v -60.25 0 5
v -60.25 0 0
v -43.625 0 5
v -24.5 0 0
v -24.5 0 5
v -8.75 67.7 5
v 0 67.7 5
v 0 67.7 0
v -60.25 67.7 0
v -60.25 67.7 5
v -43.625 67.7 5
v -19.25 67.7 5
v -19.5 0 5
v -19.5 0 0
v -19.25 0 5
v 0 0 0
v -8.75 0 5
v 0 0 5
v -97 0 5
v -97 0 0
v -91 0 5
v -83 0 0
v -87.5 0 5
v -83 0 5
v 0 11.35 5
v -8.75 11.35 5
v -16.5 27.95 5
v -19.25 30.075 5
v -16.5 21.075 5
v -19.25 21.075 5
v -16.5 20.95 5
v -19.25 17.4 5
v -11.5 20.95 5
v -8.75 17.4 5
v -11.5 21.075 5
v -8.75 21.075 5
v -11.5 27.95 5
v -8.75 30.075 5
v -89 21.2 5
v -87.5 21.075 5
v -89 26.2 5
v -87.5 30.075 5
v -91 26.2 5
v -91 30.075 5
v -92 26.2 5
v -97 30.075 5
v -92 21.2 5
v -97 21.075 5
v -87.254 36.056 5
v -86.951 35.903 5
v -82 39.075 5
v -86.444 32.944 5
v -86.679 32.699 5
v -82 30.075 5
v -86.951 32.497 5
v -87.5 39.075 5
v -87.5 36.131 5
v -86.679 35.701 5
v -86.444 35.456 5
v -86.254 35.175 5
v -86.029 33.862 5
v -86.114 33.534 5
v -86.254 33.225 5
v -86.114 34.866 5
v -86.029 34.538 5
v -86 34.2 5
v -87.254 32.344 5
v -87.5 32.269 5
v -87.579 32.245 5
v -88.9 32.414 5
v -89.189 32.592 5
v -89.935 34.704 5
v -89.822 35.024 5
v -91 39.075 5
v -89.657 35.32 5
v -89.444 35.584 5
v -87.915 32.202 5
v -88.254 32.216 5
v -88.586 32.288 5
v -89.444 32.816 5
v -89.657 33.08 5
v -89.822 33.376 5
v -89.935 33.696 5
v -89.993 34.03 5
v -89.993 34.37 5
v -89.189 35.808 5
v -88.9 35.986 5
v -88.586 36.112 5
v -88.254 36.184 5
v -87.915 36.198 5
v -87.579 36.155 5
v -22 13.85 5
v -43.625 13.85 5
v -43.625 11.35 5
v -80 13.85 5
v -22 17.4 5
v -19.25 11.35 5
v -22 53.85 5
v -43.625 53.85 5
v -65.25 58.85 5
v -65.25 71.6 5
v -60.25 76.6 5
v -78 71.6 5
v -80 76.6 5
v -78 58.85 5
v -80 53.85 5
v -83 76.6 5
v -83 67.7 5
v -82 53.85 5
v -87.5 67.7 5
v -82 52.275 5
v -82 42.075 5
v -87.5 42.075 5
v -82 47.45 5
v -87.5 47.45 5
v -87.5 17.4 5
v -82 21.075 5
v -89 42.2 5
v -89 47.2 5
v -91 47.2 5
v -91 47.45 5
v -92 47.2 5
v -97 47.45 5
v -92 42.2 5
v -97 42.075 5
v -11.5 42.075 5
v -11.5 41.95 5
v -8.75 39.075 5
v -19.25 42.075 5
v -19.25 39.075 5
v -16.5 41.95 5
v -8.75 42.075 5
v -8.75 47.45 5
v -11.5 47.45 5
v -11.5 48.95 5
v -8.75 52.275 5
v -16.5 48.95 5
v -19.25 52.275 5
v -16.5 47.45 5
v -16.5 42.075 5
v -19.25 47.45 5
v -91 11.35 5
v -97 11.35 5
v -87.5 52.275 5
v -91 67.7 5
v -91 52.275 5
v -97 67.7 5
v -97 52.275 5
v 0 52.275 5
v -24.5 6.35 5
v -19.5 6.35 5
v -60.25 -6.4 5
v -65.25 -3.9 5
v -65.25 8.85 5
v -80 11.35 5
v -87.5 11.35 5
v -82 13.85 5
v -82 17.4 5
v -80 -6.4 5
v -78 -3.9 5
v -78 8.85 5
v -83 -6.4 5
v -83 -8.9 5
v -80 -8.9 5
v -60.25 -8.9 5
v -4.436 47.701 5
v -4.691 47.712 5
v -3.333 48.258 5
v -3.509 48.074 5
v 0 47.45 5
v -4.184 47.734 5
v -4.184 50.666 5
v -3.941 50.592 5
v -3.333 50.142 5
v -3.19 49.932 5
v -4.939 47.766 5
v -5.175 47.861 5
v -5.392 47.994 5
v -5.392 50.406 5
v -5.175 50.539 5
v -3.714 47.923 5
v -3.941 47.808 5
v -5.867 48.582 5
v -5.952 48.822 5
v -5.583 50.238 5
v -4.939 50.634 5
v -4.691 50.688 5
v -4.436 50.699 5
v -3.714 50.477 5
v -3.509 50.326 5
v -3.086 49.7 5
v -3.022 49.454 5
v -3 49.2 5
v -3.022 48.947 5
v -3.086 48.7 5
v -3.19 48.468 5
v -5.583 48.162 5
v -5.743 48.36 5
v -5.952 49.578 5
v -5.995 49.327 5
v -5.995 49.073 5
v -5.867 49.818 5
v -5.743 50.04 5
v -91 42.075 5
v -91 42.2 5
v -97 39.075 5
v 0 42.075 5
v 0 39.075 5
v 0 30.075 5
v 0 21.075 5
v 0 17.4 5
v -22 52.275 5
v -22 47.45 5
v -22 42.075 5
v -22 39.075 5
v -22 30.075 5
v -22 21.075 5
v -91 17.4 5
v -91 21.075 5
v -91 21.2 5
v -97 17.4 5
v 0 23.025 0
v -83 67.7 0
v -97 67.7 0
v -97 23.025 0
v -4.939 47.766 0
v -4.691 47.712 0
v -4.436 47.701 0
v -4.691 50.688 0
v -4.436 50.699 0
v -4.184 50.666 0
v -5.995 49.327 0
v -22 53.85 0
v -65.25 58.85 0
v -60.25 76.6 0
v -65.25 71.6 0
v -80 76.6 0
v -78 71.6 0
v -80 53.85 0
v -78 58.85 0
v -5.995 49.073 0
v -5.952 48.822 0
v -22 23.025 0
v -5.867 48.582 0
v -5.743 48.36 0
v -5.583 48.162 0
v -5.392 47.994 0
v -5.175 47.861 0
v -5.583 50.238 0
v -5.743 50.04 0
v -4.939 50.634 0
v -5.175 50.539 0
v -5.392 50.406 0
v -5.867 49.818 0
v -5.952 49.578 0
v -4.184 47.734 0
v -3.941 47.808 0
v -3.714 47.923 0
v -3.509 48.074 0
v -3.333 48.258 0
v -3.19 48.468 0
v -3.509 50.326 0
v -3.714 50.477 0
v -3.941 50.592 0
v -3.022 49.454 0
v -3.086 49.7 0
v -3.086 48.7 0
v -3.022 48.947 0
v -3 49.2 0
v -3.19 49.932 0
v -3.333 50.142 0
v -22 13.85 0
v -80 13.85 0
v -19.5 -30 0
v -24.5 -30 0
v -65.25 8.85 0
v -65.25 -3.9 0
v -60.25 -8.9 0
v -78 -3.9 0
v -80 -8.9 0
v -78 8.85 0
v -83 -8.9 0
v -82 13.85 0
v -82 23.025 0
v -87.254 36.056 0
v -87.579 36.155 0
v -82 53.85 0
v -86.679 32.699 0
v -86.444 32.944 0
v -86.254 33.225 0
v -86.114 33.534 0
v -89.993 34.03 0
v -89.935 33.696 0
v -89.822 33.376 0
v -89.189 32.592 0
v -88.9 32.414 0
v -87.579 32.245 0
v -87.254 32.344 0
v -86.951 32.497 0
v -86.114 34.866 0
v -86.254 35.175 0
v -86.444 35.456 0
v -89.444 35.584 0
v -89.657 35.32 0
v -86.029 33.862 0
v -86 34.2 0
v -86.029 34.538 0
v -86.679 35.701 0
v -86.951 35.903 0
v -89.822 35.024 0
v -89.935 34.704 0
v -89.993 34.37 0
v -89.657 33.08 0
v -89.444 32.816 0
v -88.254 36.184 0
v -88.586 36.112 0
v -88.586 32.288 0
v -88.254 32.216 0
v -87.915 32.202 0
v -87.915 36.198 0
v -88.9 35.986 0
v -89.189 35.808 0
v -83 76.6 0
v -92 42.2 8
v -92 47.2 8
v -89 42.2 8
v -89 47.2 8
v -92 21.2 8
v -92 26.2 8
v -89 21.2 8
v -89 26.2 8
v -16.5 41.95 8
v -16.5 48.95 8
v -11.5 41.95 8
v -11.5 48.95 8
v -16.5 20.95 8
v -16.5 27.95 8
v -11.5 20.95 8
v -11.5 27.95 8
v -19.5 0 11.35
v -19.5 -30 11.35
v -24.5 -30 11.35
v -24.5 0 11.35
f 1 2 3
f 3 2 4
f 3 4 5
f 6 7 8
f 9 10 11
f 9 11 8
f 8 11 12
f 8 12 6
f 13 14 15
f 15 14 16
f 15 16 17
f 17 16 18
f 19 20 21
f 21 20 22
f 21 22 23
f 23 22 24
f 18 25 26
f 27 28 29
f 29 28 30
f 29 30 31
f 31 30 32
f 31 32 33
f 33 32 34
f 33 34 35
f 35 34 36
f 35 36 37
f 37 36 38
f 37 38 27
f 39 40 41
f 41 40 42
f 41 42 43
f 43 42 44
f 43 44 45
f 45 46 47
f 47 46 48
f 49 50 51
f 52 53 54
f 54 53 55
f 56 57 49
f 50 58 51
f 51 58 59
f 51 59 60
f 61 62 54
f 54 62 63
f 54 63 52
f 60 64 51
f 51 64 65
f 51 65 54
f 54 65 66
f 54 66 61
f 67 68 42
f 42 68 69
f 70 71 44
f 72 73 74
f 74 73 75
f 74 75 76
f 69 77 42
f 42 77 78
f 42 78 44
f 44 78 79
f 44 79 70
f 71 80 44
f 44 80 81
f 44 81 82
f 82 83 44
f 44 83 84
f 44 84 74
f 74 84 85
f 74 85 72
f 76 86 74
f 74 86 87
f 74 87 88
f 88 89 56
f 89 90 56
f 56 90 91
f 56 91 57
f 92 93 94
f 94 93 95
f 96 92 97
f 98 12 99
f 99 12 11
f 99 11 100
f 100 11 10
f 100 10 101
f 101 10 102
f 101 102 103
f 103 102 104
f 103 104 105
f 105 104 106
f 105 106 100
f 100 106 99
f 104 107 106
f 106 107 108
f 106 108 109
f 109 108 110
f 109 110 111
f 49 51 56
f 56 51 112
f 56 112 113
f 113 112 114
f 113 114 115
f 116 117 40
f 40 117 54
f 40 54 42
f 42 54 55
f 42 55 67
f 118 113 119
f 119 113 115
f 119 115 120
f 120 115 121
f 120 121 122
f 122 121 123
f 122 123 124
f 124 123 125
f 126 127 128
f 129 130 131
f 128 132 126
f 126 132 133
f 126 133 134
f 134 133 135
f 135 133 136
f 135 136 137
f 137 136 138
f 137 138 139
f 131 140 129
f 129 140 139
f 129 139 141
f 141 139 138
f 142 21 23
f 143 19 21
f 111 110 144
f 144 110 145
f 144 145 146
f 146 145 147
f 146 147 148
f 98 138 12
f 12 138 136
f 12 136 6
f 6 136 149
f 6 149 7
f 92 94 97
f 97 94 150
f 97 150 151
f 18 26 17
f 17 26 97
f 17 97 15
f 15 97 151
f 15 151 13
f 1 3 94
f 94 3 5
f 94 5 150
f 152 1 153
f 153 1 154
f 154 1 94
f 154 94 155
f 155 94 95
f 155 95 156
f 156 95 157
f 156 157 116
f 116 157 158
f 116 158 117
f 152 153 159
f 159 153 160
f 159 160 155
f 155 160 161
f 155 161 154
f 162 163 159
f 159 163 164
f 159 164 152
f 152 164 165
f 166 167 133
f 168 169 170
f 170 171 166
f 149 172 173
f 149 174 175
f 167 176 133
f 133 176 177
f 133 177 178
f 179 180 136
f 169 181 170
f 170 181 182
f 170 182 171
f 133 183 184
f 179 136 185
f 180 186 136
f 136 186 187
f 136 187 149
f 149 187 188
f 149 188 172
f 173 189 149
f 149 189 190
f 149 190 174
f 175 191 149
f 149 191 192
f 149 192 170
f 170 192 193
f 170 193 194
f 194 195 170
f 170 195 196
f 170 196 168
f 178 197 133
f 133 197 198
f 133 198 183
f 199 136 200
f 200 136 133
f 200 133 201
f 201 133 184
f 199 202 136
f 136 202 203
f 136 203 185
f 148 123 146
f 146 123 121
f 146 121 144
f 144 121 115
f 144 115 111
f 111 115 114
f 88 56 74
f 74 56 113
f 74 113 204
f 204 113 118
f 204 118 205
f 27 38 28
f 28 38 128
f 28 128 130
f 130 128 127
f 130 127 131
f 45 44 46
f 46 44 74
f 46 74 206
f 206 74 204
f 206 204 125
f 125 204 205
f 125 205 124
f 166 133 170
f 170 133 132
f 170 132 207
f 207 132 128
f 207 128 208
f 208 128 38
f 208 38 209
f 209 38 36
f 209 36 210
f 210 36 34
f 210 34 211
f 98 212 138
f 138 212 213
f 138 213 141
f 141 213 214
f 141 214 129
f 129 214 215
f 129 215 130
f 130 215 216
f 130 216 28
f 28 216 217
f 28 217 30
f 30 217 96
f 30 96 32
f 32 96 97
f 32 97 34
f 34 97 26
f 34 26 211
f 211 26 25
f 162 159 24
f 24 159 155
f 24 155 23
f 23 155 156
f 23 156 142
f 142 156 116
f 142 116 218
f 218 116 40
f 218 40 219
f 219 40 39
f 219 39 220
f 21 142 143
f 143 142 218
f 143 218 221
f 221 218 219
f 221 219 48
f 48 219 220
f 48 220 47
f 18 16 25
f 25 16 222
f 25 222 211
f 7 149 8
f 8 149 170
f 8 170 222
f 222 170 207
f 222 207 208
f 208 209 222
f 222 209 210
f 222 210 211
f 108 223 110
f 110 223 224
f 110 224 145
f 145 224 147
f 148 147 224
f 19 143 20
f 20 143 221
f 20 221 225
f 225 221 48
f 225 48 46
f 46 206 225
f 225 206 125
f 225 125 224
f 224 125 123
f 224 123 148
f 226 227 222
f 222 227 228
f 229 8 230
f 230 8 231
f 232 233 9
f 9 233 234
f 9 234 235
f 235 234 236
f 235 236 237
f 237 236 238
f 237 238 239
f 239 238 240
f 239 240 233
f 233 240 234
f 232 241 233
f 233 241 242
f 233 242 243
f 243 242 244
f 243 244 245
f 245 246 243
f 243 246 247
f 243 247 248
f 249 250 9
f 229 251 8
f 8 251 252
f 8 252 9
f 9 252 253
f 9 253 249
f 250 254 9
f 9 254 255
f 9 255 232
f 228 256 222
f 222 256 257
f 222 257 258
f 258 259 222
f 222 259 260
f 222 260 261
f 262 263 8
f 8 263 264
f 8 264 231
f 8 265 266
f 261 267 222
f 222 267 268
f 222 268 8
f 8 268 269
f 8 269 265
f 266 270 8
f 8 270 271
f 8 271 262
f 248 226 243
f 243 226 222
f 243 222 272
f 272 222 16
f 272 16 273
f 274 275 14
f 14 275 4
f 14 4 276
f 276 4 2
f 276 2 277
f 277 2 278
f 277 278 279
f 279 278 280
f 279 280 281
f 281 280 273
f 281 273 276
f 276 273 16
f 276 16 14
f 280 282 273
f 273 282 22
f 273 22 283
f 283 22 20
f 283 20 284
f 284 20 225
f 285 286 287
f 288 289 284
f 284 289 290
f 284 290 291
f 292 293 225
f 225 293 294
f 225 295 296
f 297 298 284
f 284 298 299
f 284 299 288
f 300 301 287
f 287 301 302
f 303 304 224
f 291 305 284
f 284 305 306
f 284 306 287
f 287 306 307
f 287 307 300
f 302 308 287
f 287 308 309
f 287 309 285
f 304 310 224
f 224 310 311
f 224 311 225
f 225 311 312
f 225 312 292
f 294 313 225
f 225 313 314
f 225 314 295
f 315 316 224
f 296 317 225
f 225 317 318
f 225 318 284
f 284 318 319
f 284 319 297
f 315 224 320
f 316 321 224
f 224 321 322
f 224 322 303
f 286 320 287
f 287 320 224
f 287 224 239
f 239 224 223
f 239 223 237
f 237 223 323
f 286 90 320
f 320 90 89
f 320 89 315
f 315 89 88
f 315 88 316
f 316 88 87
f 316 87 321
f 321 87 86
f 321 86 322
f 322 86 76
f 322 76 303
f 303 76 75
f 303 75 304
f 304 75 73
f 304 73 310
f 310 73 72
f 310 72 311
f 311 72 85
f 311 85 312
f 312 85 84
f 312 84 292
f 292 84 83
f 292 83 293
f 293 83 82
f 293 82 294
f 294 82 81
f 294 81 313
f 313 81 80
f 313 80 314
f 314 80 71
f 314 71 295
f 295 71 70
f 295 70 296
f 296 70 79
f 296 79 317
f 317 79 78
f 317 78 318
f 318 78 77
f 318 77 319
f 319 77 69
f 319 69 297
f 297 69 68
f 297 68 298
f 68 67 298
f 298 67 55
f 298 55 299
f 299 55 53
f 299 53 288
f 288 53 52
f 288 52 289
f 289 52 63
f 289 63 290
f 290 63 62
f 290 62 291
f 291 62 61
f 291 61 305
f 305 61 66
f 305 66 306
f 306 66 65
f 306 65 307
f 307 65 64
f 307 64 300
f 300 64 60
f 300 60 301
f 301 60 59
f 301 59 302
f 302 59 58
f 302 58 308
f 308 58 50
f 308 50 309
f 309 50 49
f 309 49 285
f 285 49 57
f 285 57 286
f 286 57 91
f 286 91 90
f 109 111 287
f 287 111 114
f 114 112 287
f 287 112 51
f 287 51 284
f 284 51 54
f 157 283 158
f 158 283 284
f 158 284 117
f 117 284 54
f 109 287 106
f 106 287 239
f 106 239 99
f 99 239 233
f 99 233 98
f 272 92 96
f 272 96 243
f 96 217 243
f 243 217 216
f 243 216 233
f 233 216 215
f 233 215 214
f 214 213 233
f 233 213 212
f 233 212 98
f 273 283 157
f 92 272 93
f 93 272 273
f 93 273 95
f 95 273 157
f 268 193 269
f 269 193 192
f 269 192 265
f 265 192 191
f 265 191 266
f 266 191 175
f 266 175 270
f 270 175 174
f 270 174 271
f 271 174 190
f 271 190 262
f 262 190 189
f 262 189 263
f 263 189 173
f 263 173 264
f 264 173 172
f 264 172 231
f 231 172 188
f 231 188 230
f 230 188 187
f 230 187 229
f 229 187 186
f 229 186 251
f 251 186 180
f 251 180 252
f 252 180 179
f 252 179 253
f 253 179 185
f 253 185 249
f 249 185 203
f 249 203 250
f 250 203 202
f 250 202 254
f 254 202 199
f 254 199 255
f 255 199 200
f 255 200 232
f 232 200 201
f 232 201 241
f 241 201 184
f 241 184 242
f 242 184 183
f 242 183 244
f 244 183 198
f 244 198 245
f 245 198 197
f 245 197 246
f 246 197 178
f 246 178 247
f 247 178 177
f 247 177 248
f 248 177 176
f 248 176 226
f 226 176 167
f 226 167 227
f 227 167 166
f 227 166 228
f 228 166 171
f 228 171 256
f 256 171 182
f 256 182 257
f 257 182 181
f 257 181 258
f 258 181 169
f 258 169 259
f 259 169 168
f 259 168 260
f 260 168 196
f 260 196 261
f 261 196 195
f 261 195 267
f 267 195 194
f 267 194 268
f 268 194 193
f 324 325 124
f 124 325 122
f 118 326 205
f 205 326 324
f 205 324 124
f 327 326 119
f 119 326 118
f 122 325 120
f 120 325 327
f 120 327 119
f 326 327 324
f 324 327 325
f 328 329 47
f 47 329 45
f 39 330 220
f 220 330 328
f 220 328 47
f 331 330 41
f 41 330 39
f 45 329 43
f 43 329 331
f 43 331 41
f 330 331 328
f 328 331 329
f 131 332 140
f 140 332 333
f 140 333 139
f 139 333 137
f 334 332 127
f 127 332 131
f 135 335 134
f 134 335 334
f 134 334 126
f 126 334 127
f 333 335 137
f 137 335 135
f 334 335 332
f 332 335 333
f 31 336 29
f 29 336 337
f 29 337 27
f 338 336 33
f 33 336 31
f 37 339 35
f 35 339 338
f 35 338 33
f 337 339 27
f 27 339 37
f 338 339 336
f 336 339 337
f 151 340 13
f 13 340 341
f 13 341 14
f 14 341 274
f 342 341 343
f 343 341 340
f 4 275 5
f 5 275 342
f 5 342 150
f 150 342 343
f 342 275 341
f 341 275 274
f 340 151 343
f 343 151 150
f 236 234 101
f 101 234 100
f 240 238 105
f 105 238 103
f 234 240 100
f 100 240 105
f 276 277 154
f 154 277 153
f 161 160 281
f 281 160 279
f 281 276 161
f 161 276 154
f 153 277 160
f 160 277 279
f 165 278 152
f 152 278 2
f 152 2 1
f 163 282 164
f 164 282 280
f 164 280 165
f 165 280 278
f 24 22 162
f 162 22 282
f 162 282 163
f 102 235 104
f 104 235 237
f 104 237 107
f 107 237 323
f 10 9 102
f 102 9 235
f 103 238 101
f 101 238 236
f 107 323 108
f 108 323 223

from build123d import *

# Parameters (mm, degrees)
SKETCH1_W           = 97
SKETCH1_H           = 67.7
BOSS_EXTRUDE1_DEPTH = 5
SKETCH2_R           = 2
SKETCH2_R_2         = 1.5
SKETCH2_W           = 60
SKETCH2_H           = 40
CUT_EXTRUDE1_DEPTH  = 6
SKETCH3_W           = 3
SKETCH3_H           = 5
SKETCH3_W_2         = 5
SKETCH3_H_2         = 7
BOSS_EXTRUDE2_DEPTH = 3
SKETCH7_W           = 5
SKETCH7_H           = 11.35
BOSS_EXTRUDE4_DEPTH = 30
BOSS_EXTRUDE5_DEPTH = 5
SKETCH4_W           = 12.75
SKETCH4_H           = 12.75
CUT_EXTRUDE2_DEPTH  = 12.35
BOSS_EXTRUDE6_DEPTH = 5


with BuildPart() as part:
    # Sketch1 → Boss-Extrude1 (new body)
    with BuildSketch(Plane.XY):
        with Locations((-48.5, 33.85)):
            Rectangle(SKETCH1_W, SKETCH1_H)
    extrude(amount=BOSS_EXTRUDE1_DEPTH)

    # Sketch2 → Cut-Extrude1 (cut, through all)
    with BuildSketch(Plane.XY.offset(5)):
        with Locations((-88, 34.2)):
            Circle(SKETCH2_R)
        with Locations((-4.5, 49.2)):
            Circle(SKETCH2_R_2)
        with Locations((-52, 33.85)):
            Rectangle(SKETCH2_W, SKETCH2_H)
    extrude(amount=-CUT_EXTRUDE1_DEPTH, mode=Mode.SUBTRACT)

    # Sketch3 → Boss-Extrude2 (add)
    with BuildSketch(Plane.XY.offset(5)):
        with Locations((-90.5, 44.7)):
            Rectangle(SKETCH3_W, SKETCH3_H)
        with Locations((-90.5, 23.7)):
            Rectangle(SKETCH3_W, SKETCH3_H)
        with Locations((-14, 45.45)):
            Rectangle(SKETCH3_W_2, SKETCH3_H_2)
        with Locations((-14, 24.45)):
            Rectangle(SKETCH3_W_2, SKETCH3_H_2)
    extrude(amount=BOSS_EXTRUDE2_DEPTH)

    # Sketch7 → Boss-Extrude4 (add)
    with BuildSketch(Plane.XZ):
        with Locations((-22, 5.675)):
            Rectangle(SKETCH7_W, SKETCH7_H)
    extrude(amount=BOSS_EXTRUDE4_DEPTH)

    # Sketch8 → Boss-Extrude5 (add)
    with BuildSketch(Plane(origin=(-19.5, 0, 0), x_dir=(0, 0, -1), z_dir=(1, 0, 0))):
        Polygon((-11.35, 0), (-5, 0), (-5, 6.35), align=None)
    extrude(amount=-BOSS_EXTRUDE5_DEPTH)

    # Sketch4 → Cut-Extrude2 (cut, through all)
    with BuildSketch(Plane(origin=(0, 0, 0), x_dir=(-1, 0, 0), z_dir=(0, 0, -1))):
        with Locations((71.625, 65.225)):
            Rectangle(SKETCH4_W, SKETCH4_H)
        with Locations((71.625, 2.475)):
            Rectangle(SKETCH4_W, SKETCH4_H)
    extrude(amount=-CUT_EXTRUDE2_DEPTH, mode=Mode.SUBTRACT)

    # Sketch10 → Boss-Extrude6 (add)
    with BuildSketch(Plane(origin=(0, 0, 0), x_dir=(-1, 0, 0), z_dir=(0, 0, -1))):
        Polygon((83, 0), (83, -8.9), (60.25, -8.9), (60.25, 0), (65.25, 0), (65.25, -3.9), (78, -3.9), (78, 0), align=None)
        Polygon((83, 67.7), (78, 67.7), (78, 71.6), (65.25, 71.6), (65.25, 67.7), (60.25, 67.7), (60.25, 76.6), (83, 76.6), align=None)
    extrude(amount=-BOSS_EXTRUDE6_DEPTH)


solid = part.part
